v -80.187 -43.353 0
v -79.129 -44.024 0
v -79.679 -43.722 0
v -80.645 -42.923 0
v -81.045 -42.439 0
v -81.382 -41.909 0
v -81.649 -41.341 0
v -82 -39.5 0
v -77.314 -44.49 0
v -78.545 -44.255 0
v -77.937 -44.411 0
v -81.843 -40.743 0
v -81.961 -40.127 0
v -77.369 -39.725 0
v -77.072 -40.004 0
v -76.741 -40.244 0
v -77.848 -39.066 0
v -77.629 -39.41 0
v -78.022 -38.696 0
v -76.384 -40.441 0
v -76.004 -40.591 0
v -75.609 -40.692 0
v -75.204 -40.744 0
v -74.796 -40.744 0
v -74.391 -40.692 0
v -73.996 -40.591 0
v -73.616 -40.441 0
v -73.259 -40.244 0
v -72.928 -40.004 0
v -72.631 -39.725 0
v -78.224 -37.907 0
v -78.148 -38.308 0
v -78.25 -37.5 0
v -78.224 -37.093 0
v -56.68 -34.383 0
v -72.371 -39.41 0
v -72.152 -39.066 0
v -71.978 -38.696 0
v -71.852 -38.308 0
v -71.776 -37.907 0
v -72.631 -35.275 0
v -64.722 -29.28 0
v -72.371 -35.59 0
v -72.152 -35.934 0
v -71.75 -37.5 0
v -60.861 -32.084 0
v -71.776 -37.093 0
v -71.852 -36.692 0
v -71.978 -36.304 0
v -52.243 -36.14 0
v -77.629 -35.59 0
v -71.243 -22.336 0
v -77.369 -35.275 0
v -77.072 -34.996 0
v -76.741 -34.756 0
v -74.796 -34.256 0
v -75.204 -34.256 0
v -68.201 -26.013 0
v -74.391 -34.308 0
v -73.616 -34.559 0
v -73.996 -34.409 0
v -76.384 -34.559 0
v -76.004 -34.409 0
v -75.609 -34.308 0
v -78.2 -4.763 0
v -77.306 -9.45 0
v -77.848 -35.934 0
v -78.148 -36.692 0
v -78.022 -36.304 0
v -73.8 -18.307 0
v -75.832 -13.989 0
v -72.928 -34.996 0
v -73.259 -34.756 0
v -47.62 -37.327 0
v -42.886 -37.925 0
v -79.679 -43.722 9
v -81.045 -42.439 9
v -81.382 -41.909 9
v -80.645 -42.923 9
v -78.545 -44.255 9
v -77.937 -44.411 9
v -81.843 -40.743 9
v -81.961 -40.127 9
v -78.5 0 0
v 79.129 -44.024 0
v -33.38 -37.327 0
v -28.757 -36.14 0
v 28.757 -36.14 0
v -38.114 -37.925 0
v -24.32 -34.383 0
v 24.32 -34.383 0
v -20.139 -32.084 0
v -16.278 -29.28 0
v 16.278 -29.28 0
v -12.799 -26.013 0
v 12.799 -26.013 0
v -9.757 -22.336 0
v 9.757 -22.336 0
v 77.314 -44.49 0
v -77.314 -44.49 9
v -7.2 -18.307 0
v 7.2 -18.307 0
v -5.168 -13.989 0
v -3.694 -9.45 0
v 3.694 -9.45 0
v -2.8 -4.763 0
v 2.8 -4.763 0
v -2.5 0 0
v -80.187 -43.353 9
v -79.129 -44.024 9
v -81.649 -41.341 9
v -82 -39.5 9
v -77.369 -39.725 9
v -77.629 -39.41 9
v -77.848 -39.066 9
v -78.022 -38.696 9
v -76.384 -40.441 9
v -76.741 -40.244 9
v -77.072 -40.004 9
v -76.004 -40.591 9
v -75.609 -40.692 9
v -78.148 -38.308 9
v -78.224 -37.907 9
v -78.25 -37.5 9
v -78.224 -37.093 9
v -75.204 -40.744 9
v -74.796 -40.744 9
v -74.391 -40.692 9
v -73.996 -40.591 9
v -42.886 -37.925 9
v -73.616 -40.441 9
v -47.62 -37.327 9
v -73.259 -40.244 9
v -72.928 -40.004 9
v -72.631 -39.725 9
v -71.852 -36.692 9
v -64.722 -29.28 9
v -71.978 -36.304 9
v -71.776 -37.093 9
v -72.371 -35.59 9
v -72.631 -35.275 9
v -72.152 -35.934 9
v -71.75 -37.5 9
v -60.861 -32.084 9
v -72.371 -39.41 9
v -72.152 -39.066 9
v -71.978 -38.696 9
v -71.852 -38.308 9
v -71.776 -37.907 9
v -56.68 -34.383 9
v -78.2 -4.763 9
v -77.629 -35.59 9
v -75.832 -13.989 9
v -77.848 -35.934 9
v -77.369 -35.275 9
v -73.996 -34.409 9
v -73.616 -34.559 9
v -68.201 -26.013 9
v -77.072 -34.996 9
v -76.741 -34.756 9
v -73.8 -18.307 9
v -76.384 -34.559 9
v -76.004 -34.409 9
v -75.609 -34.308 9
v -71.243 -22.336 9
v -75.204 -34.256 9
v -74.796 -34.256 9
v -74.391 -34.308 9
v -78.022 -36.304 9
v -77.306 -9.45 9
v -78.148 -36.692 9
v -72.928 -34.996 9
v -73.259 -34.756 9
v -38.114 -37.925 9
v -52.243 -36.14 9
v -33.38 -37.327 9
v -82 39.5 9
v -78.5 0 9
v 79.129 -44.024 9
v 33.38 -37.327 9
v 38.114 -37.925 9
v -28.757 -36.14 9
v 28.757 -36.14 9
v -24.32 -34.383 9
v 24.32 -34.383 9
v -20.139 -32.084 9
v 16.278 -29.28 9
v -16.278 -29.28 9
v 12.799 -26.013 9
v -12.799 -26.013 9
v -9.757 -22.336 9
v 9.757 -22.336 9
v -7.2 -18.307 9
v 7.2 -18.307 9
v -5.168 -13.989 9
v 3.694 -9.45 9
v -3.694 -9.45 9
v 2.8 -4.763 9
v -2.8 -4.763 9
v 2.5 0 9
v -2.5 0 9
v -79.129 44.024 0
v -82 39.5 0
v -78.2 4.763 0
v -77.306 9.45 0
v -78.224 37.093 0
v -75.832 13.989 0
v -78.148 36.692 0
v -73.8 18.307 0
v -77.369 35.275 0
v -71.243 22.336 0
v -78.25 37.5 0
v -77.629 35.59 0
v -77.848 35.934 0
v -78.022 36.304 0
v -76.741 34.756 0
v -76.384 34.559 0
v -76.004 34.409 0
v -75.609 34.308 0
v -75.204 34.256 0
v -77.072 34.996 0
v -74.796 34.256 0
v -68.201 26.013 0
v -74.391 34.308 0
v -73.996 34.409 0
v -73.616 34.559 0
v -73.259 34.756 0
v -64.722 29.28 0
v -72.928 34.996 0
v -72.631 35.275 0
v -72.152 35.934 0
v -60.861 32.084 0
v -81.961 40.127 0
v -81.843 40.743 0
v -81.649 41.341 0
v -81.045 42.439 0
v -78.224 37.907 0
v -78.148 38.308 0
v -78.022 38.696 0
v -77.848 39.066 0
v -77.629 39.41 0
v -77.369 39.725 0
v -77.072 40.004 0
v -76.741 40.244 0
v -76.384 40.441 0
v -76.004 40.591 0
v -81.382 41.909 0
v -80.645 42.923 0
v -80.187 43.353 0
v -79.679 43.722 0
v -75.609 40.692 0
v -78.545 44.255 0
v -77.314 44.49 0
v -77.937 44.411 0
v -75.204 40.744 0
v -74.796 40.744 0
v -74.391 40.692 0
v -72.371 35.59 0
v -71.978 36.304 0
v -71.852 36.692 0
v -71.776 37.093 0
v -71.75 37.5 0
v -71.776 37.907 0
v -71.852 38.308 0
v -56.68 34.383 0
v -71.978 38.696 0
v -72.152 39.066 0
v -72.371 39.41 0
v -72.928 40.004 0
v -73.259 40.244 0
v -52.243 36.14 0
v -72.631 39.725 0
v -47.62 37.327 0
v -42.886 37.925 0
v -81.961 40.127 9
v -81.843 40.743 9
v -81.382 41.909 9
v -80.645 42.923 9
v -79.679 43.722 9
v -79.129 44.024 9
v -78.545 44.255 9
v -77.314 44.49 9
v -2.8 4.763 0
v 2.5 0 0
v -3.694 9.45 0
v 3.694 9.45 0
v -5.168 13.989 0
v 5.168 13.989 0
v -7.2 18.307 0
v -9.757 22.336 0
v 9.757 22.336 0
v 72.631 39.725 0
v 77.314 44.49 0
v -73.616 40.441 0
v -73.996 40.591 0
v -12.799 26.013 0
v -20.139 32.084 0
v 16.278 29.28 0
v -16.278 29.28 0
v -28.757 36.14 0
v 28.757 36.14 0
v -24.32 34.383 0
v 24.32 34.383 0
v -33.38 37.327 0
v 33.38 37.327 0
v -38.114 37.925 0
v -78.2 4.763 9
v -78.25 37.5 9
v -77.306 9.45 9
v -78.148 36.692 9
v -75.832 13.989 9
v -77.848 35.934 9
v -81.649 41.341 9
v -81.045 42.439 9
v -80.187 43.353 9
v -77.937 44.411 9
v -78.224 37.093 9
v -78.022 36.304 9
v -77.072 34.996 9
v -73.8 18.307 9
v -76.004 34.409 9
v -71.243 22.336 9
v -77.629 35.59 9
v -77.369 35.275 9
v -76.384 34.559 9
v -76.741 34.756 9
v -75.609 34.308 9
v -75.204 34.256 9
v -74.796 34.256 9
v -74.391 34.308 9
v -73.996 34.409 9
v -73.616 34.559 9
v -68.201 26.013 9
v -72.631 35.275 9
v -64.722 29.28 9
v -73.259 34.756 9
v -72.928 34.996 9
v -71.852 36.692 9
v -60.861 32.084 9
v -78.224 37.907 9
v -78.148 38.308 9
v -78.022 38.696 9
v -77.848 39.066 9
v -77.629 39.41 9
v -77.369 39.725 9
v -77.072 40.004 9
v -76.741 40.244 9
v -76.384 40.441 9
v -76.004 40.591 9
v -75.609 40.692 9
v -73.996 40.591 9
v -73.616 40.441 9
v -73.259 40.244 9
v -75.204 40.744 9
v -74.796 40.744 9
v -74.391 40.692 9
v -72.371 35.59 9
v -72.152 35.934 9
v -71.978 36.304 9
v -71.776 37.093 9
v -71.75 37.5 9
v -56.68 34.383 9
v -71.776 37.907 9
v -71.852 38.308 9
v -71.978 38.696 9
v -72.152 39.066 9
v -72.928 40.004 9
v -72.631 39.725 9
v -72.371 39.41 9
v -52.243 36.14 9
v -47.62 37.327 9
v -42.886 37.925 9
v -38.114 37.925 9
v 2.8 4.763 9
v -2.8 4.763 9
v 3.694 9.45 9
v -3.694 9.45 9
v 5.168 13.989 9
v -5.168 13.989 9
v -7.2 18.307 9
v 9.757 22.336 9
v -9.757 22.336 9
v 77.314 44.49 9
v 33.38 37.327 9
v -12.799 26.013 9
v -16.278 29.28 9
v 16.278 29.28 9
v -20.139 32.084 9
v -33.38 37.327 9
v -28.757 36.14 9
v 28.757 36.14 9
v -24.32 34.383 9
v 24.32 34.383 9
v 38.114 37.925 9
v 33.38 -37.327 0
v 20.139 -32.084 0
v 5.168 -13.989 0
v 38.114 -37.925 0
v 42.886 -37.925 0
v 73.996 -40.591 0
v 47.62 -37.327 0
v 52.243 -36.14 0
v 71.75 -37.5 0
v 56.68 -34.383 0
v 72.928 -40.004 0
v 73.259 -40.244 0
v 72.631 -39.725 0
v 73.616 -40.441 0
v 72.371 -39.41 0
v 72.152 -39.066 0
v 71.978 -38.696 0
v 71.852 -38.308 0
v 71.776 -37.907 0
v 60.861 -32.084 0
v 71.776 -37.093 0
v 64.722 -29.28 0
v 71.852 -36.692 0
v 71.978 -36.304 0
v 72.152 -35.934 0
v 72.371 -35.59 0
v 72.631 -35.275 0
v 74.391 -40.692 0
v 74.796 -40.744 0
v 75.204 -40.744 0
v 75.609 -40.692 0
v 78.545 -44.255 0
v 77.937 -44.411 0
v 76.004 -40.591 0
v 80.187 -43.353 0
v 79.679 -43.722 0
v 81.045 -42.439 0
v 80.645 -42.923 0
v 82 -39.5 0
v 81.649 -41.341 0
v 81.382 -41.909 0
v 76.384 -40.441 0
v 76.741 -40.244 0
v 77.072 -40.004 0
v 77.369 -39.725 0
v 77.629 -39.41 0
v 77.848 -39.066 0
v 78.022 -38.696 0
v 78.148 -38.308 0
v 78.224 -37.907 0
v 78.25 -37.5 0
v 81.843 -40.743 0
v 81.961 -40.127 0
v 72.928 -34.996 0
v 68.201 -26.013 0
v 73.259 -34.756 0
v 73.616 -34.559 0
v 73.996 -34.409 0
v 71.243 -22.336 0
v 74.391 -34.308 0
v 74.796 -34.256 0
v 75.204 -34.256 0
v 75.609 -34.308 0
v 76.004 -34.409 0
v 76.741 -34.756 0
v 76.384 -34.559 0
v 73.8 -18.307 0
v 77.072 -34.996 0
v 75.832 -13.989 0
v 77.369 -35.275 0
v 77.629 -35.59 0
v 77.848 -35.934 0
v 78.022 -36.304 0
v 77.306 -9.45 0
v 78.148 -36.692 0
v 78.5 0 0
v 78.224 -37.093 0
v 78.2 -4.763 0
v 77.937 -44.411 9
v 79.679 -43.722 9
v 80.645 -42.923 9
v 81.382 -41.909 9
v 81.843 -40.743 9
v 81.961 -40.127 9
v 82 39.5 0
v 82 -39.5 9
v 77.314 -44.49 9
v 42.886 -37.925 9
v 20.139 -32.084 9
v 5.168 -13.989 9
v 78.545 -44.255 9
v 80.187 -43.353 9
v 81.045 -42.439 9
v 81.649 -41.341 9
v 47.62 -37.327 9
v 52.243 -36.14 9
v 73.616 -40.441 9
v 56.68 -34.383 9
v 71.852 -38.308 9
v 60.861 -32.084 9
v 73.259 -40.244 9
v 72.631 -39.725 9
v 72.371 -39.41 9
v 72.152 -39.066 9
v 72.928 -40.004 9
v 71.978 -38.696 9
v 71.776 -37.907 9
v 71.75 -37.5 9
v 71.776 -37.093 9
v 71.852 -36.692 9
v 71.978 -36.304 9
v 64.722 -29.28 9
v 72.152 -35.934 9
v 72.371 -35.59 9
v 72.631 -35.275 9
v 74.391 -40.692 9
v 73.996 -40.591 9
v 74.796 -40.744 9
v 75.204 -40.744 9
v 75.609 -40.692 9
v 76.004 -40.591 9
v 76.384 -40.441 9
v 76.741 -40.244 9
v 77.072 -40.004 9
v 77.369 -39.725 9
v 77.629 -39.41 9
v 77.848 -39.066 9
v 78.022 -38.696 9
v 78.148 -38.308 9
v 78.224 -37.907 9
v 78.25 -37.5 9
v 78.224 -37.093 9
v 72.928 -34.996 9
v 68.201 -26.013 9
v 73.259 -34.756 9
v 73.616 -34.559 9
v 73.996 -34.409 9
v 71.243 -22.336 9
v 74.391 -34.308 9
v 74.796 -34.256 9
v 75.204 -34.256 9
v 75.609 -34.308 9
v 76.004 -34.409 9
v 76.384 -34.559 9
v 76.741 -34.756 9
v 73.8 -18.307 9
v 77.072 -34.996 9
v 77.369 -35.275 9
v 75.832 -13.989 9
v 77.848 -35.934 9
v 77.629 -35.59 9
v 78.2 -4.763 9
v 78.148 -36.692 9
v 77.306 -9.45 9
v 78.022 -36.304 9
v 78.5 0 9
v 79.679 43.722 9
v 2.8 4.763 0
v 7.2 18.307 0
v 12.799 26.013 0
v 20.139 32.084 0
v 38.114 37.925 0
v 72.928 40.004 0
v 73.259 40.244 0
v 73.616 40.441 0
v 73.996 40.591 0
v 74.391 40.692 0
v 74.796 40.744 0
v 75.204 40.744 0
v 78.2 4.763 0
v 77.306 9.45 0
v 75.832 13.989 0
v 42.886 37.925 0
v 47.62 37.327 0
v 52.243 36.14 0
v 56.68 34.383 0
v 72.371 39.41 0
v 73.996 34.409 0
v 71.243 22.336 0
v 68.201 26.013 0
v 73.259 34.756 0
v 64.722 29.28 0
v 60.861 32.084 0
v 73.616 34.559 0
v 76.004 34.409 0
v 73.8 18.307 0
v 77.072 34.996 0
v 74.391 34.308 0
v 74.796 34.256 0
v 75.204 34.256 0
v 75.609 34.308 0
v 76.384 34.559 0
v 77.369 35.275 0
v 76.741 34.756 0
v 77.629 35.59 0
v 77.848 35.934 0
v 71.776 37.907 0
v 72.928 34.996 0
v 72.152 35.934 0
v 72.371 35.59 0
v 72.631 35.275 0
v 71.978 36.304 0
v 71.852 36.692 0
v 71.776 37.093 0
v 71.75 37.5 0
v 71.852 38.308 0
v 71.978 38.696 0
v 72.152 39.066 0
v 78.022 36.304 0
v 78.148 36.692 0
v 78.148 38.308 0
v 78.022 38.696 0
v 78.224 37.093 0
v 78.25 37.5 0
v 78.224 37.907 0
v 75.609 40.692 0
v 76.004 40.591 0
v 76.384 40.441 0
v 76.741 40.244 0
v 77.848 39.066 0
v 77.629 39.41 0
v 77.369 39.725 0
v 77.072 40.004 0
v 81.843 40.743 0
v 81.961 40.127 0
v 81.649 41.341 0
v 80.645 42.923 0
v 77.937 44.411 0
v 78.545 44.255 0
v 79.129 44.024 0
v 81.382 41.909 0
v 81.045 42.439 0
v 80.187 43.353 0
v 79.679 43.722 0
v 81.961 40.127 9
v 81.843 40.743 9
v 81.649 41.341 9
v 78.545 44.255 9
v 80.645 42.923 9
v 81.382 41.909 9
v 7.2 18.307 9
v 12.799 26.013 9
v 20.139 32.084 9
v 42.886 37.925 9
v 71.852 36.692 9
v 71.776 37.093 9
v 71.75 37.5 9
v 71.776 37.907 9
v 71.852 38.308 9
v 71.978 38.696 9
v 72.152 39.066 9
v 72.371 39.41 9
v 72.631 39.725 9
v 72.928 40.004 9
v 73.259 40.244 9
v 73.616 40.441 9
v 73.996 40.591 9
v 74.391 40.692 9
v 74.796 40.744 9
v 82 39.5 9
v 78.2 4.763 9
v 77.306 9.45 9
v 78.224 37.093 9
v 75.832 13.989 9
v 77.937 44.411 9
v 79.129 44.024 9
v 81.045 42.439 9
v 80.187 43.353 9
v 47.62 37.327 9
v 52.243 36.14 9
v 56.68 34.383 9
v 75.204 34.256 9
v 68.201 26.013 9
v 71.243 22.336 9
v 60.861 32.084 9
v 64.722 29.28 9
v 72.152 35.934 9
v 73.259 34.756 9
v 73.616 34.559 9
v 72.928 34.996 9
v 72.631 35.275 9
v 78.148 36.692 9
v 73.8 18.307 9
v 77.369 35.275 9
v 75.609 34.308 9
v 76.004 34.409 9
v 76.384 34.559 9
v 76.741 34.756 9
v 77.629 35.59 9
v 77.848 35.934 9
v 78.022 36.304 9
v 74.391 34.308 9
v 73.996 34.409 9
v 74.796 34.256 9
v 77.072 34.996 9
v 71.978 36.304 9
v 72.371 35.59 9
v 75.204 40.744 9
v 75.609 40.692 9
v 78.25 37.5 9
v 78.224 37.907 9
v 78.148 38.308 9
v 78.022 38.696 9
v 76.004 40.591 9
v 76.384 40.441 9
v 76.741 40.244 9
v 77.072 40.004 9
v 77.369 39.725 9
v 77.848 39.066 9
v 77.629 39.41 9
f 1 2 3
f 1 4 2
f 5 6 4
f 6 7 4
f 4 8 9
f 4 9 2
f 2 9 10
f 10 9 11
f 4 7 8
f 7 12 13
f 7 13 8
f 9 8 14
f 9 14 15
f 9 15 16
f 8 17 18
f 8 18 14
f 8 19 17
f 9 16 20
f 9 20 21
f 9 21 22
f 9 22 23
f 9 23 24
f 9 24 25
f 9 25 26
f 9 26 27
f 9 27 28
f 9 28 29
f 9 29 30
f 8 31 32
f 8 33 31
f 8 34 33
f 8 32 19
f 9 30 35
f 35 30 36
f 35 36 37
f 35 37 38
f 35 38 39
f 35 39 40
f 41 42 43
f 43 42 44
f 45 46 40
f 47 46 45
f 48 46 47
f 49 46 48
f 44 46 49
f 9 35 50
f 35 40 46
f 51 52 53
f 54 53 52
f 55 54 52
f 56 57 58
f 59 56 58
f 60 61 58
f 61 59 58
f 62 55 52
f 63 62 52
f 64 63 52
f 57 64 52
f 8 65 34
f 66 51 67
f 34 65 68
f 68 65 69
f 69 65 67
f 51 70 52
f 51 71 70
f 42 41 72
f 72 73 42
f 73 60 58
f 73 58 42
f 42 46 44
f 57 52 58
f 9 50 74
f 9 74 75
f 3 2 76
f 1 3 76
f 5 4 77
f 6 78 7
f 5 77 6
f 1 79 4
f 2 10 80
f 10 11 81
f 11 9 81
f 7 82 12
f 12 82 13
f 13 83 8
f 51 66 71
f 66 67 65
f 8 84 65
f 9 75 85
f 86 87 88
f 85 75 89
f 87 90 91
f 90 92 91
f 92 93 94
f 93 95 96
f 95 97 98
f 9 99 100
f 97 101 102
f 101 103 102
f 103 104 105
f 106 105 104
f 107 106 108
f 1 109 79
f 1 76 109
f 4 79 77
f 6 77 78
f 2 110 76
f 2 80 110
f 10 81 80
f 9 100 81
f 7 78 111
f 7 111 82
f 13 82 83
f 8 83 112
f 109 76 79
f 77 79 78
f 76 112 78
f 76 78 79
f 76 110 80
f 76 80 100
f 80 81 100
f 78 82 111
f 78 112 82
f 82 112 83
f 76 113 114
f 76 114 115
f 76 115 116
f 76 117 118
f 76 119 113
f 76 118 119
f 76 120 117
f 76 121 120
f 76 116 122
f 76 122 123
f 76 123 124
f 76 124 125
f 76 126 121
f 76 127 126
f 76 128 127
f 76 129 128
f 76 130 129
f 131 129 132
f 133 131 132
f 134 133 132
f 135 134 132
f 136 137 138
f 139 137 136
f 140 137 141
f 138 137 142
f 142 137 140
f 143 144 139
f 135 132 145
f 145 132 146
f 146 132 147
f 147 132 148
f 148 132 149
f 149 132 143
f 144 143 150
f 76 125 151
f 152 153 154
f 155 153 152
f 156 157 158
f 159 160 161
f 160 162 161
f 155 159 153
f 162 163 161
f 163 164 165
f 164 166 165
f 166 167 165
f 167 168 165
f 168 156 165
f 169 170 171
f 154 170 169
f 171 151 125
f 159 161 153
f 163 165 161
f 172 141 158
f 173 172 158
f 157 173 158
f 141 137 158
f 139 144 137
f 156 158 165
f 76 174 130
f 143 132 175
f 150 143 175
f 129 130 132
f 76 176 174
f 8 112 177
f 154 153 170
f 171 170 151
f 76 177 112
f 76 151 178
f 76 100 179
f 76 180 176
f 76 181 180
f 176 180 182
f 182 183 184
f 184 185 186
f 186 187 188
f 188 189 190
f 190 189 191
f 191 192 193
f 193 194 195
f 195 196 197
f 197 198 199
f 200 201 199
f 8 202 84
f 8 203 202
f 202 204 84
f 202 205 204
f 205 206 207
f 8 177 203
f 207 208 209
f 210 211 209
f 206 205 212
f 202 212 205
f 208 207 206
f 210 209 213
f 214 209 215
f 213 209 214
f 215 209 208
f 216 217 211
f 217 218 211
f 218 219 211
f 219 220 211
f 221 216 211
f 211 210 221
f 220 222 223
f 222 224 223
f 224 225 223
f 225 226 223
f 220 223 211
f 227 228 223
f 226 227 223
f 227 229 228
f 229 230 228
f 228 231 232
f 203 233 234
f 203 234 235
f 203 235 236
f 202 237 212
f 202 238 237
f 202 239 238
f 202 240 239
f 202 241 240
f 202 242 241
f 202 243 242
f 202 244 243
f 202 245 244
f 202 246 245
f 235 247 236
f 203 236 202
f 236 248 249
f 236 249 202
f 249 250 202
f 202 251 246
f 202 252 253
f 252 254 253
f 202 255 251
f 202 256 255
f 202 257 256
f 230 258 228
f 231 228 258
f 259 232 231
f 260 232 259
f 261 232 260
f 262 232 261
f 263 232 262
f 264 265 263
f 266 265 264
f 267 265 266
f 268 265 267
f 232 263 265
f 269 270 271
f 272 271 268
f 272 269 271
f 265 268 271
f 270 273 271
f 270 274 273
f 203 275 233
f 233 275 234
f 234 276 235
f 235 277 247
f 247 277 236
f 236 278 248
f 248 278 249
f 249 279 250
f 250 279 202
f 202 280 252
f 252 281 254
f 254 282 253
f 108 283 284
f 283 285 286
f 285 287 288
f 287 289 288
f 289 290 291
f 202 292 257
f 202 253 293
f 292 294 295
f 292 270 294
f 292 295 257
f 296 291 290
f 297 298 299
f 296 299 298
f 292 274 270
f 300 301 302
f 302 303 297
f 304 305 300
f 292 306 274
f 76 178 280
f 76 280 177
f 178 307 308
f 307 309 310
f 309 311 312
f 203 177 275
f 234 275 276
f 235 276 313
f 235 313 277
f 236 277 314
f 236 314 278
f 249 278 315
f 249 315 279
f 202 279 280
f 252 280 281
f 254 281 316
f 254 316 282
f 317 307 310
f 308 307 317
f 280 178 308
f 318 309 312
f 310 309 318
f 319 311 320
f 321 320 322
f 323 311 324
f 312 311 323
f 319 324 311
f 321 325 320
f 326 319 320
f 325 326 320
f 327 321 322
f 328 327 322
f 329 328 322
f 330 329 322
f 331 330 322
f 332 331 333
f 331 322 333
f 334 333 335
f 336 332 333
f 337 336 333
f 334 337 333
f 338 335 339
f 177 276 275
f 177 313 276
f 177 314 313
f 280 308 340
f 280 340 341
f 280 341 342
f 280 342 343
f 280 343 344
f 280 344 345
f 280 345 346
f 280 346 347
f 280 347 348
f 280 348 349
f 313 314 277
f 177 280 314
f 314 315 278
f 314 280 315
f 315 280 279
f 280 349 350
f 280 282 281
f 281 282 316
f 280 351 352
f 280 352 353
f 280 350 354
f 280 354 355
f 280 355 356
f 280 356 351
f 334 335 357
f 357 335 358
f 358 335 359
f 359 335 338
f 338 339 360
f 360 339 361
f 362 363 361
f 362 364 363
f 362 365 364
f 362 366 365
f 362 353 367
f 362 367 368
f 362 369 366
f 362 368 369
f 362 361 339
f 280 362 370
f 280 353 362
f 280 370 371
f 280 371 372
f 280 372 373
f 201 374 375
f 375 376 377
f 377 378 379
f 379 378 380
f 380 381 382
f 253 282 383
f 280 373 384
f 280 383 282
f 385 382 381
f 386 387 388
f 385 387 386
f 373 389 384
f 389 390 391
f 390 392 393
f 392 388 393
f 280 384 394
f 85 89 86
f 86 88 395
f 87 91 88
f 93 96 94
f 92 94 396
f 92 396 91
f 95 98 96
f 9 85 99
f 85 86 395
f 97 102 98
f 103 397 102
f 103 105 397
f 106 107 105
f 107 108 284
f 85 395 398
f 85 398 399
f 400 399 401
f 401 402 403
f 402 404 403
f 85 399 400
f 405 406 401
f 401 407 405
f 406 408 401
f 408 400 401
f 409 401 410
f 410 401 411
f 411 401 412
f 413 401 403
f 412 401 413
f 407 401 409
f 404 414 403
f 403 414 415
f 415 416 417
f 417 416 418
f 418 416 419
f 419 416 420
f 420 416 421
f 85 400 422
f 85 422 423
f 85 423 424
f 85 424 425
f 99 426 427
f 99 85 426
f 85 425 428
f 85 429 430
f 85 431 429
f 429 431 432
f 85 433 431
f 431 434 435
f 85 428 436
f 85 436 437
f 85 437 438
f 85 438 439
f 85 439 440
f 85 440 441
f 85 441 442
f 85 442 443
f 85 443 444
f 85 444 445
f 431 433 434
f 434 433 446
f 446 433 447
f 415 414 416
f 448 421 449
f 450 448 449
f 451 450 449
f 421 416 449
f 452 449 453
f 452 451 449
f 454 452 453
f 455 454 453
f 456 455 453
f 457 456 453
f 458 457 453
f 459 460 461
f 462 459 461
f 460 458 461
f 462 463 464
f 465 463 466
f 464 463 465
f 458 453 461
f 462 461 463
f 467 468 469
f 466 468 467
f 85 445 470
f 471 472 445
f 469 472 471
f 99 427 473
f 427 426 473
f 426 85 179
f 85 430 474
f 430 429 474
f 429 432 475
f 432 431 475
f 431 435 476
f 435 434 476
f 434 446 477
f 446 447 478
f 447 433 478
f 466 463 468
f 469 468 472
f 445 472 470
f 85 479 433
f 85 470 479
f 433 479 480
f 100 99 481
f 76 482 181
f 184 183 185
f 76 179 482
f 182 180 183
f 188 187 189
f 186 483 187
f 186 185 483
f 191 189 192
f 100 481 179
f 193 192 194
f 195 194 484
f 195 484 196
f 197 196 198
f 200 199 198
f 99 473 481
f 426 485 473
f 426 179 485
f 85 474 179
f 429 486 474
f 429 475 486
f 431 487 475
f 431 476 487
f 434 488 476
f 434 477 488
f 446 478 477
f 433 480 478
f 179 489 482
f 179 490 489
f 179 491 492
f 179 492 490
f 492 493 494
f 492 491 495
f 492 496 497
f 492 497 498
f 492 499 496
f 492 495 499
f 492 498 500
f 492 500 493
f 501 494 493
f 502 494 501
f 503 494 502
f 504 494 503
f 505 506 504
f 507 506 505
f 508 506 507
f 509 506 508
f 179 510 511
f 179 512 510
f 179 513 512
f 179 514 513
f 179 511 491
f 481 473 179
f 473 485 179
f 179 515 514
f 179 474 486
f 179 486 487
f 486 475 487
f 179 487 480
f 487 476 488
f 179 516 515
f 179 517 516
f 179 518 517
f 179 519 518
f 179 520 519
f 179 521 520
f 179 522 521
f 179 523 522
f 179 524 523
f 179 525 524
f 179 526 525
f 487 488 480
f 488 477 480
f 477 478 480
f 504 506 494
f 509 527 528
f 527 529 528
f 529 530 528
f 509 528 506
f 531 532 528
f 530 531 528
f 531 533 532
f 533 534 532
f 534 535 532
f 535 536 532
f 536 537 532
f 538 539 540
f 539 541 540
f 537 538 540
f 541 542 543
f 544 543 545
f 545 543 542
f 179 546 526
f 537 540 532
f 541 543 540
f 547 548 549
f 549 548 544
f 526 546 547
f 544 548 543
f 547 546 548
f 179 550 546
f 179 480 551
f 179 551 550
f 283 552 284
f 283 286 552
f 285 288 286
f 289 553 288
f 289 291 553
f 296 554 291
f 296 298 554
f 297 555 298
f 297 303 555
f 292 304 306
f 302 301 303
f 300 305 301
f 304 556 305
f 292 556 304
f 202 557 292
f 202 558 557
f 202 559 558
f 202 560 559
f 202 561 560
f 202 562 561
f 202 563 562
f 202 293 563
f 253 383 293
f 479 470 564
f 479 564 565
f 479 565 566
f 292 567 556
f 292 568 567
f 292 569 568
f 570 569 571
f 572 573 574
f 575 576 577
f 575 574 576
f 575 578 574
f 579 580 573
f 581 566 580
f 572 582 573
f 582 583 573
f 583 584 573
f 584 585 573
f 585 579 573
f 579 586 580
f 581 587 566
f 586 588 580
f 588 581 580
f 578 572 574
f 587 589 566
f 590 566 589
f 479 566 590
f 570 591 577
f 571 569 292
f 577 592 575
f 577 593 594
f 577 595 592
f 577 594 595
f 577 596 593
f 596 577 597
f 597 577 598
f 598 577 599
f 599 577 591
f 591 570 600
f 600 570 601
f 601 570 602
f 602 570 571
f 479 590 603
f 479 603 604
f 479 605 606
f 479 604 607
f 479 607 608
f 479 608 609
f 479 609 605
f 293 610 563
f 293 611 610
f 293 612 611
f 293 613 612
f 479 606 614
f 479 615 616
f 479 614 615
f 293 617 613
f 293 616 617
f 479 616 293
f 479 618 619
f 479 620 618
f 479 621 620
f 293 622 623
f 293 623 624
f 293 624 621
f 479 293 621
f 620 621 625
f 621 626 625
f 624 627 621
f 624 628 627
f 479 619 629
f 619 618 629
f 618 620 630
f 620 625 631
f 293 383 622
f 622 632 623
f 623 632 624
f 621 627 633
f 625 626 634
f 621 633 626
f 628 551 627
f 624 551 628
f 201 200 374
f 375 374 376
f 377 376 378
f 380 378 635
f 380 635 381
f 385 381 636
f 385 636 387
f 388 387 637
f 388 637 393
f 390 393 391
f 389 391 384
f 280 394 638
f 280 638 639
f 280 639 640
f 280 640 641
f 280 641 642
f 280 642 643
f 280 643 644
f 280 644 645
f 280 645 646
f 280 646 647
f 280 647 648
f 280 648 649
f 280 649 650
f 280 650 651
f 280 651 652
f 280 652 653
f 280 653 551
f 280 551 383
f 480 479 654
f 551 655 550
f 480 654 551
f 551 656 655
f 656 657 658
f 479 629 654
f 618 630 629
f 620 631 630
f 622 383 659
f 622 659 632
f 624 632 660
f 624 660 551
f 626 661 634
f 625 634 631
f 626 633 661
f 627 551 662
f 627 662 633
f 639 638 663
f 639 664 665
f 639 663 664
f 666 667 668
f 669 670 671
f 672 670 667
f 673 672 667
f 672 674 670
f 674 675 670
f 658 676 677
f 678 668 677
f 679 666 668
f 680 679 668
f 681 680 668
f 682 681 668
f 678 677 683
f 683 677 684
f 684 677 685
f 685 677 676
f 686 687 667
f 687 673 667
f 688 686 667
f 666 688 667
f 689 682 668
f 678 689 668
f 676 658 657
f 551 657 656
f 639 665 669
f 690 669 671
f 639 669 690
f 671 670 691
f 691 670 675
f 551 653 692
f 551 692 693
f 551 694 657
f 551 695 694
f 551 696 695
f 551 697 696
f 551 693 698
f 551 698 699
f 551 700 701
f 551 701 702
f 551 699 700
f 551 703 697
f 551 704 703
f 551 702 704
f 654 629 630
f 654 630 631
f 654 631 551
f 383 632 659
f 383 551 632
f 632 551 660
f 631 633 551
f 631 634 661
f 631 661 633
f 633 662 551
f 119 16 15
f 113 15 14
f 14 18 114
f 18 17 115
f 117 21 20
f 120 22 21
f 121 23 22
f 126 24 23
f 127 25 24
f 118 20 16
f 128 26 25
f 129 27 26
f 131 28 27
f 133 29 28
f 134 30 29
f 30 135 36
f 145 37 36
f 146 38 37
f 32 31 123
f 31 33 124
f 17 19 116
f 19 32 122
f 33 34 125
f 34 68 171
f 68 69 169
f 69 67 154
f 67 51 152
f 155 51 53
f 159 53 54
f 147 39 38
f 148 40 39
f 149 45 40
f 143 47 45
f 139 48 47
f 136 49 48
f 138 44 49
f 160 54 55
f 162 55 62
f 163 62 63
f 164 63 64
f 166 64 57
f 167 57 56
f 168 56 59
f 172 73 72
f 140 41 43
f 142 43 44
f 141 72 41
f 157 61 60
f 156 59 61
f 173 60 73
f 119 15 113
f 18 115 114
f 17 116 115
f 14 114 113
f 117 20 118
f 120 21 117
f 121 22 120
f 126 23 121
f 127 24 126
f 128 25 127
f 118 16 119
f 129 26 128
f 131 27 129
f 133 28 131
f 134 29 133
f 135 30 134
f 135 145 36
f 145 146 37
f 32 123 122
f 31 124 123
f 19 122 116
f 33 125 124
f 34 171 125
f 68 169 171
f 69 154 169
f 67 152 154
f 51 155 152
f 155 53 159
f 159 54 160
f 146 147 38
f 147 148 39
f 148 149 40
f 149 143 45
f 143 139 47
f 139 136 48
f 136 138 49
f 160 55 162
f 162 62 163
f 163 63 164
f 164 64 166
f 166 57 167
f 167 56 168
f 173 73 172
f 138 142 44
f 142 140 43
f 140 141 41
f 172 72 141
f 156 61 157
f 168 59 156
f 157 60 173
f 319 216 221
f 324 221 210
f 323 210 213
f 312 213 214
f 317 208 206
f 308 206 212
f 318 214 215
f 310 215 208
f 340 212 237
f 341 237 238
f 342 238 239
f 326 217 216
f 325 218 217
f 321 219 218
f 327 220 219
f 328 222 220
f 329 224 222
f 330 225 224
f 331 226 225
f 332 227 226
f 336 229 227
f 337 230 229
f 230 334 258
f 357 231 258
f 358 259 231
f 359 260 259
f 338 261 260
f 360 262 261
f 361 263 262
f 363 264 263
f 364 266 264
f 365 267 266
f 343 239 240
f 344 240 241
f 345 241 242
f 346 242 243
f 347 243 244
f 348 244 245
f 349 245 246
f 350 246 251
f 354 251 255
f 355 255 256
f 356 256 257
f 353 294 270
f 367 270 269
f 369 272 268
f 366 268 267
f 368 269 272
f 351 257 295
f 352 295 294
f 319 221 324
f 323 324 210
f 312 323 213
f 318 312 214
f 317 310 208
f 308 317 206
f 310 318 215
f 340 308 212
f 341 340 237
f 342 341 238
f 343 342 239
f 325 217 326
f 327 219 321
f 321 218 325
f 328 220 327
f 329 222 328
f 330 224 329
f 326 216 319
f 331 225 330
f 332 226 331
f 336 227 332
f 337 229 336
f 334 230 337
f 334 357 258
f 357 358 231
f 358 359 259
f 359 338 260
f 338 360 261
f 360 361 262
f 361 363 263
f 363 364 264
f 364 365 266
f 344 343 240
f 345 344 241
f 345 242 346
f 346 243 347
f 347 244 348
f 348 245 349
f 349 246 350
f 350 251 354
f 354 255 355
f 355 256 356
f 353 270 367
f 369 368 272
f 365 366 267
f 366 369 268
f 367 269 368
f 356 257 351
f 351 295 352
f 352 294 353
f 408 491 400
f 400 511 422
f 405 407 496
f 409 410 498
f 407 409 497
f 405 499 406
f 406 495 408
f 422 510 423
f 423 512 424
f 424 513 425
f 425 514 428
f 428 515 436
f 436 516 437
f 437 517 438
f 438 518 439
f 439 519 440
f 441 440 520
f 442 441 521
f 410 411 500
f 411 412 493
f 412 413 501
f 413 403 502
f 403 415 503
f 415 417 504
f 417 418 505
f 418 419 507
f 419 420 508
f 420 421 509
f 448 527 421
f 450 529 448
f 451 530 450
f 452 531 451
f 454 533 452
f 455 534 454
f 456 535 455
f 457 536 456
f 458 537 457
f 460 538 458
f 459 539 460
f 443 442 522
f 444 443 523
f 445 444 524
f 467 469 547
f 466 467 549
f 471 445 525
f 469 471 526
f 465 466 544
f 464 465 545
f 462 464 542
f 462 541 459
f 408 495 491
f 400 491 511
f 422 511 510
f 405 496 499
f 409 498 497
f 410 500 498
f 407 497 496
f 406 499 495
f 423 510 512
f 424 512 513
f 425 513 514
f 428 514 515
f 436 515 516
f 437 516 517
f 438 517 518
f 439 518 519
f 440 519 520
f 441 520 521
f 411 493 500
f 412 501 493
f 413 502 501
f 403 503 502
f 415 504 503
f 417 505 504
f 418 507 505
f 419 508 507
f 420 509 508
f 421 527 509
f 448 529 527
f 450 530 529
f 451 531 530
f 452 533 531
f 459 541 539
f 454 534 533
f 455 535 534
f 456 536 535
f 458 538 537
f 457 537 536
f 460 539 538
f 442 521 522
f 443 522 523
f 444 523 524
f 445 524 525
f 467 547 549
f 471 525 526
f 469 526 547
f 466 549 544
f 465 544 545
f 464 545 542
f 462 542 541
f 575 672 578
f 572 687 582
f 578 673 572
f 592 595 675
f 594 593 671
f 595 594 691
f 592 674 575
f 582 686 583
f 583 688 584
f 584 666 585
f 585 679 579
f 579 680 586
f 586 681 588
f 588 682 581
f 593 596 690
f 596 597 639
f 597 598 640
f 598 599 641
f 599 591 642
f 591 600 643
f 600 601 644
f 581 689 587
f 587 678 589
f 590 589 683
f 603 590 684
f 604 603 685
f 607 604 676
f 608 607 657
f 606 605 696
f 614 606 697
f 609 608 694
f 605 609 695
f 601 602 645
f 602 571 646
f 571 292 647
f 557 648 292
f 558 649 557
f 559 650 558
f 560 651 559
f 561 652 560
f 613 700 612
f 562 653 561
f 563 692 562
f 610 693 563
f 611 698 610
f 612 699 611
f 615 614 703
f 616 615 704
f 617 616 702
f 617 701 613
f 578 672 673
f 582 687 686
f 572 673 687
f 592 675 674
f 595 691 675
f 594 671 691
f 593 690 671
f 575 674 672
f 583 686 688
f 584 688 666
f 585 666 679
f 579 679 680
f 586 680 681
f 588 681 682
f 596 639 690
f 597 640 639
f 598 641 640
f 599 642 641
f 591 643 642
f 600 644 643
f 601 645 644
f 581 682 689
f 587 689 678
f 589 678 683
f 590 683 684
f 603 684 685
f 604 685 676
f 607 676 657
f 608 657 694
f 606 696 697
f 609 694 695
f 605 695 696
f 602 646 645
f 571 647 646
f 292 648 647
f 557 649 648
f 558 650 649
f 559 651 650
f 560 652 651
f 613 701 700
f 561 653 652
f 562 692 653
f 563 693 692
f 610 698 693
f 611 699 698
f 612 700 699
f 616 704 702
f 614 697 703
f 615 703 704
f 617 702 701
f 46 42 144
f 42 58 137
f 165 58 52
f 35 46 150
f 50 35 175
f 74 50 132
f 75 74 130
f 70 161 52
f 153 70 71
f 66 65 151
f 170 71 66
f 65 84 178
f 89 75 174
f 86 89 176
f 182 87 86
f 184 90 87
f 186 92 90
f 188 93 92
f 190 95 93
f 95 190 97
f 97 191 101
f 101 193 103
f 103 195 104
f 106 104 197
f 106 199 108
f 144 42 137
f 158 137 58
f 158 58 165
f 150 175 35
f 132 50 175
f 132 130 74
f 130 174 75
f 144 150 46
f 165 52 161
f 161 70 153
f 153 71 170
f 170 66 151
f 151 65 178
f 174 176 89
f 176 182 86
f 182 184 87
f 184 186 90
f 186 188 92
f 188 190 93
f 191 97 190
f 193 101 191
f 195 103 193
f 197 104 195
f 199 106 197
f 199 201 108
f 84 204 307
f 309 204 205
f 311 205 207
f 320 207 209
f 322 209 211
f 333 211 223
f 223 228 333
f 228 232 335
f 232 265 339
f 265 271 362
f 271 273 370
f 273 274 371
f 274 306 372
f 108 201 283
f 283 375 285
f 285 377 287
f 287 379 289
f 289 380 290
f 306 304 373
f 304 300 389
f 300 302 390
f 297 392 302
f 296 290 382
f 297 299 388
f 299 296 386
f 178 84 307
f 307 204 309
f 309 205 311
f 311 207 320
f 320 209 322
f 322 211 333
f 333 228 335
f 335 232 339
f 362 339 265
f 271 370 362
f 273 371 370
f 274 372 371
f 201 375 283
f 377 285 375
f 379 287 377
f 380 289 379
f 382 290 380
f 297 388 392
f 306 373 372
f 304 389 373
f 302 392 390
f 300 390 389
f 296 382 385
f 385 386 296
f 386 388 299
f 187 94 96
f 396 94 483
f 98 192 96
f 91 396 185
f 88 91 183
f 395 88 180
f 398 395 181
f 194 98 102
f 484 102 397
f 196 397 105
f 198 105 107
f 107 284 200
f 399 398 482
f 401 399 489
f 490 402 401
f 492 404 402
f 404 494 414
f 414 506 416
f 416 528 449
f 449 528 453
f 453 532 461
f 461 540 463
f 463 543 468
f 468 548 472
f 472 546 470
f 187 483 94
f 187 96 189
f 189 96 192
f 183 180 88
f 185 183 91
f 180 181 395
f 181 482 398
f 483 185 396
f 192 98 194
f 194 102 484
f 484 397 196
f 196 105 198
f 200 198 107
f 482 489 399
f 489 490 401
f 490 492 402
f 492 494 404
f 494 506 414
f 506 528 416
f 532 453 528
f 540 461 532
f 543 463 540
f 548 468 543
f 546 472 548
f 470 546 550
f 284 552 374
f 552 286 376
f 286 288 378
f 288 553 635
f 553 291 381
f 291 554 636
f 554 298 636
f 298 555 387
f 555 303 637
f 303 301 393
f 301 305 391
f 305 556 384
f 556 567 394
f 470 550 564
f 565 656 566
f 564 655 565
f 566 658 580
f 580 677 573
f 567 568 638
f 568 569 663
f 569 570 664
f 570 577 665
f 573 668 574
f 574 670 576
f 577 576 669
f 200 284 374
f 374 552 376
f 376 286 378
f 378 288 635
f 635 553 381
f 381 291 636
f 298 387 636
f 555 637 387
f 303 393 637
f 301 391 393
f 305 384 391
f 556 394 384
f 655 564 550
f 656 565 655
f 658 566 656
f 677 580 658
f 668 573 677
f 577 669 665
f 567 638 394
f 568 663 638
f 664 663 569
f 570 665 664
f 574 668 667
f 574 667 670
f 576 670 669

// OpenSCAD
$fn = 50;

difference() {
	union() {
		hull() {
			translate(v = [-77.0, 39.5, 0]) {
				cylinder(h = 9, r = 5);
			}
			translate(v = [77.0, 39.5, 0]) {
				cylinder(h = 9, r = 5);
			}
			translate(v = [-77.0, -39.5, 0]) {
				cylinder(h = 9, r = 5);
			}
			translate(v = [77.0, -39.5, 0]) {
				cylinder(h = 9, r = 5);
			}
		}
	}
	union() {
		translate(v = [-75.0, -37.5, -100.0]) {
			cylinder(h = 200, r = 3.25);
		}
		translate(v = [-75.0, 37.5, -100.0]) {
			cylinder(h = 200, r = 3.25);
		}
		translate(v = [75.0, -37.5, -100.0]) {
			cylinder(h = 200, r = 3.25);
		}
		translate(v = [75.0, 37.5, -100.0]) {
			cylinder(h = 200, r = 3.25);
		}
		translate(v = [-75.0, -37.5, -100.0]) {
			cylinder(h = 200, r = 1.8);
		}
		translate(v = [-75.0, 37.5, -100.0]) {
			cylinder(h = 200, r = 1.8);
		}
		translate(v = [75.0, -37.5, -100.0]) {
			cylinder(h = 200, r = 1.8);
		}
		translate(v = [75.0, 37.5, -100.0]) {
			cylinder(h = 200, r = 1.8);
		}
		translate(v = [-40.5, 0, 0.0]) {
			cylinder(h = 9, r = 38.0);
		}
		translate(v = [40.5, 0, 0.0]) {
			cylinder(h = 9, r = 38.0);
		}
	}
}
